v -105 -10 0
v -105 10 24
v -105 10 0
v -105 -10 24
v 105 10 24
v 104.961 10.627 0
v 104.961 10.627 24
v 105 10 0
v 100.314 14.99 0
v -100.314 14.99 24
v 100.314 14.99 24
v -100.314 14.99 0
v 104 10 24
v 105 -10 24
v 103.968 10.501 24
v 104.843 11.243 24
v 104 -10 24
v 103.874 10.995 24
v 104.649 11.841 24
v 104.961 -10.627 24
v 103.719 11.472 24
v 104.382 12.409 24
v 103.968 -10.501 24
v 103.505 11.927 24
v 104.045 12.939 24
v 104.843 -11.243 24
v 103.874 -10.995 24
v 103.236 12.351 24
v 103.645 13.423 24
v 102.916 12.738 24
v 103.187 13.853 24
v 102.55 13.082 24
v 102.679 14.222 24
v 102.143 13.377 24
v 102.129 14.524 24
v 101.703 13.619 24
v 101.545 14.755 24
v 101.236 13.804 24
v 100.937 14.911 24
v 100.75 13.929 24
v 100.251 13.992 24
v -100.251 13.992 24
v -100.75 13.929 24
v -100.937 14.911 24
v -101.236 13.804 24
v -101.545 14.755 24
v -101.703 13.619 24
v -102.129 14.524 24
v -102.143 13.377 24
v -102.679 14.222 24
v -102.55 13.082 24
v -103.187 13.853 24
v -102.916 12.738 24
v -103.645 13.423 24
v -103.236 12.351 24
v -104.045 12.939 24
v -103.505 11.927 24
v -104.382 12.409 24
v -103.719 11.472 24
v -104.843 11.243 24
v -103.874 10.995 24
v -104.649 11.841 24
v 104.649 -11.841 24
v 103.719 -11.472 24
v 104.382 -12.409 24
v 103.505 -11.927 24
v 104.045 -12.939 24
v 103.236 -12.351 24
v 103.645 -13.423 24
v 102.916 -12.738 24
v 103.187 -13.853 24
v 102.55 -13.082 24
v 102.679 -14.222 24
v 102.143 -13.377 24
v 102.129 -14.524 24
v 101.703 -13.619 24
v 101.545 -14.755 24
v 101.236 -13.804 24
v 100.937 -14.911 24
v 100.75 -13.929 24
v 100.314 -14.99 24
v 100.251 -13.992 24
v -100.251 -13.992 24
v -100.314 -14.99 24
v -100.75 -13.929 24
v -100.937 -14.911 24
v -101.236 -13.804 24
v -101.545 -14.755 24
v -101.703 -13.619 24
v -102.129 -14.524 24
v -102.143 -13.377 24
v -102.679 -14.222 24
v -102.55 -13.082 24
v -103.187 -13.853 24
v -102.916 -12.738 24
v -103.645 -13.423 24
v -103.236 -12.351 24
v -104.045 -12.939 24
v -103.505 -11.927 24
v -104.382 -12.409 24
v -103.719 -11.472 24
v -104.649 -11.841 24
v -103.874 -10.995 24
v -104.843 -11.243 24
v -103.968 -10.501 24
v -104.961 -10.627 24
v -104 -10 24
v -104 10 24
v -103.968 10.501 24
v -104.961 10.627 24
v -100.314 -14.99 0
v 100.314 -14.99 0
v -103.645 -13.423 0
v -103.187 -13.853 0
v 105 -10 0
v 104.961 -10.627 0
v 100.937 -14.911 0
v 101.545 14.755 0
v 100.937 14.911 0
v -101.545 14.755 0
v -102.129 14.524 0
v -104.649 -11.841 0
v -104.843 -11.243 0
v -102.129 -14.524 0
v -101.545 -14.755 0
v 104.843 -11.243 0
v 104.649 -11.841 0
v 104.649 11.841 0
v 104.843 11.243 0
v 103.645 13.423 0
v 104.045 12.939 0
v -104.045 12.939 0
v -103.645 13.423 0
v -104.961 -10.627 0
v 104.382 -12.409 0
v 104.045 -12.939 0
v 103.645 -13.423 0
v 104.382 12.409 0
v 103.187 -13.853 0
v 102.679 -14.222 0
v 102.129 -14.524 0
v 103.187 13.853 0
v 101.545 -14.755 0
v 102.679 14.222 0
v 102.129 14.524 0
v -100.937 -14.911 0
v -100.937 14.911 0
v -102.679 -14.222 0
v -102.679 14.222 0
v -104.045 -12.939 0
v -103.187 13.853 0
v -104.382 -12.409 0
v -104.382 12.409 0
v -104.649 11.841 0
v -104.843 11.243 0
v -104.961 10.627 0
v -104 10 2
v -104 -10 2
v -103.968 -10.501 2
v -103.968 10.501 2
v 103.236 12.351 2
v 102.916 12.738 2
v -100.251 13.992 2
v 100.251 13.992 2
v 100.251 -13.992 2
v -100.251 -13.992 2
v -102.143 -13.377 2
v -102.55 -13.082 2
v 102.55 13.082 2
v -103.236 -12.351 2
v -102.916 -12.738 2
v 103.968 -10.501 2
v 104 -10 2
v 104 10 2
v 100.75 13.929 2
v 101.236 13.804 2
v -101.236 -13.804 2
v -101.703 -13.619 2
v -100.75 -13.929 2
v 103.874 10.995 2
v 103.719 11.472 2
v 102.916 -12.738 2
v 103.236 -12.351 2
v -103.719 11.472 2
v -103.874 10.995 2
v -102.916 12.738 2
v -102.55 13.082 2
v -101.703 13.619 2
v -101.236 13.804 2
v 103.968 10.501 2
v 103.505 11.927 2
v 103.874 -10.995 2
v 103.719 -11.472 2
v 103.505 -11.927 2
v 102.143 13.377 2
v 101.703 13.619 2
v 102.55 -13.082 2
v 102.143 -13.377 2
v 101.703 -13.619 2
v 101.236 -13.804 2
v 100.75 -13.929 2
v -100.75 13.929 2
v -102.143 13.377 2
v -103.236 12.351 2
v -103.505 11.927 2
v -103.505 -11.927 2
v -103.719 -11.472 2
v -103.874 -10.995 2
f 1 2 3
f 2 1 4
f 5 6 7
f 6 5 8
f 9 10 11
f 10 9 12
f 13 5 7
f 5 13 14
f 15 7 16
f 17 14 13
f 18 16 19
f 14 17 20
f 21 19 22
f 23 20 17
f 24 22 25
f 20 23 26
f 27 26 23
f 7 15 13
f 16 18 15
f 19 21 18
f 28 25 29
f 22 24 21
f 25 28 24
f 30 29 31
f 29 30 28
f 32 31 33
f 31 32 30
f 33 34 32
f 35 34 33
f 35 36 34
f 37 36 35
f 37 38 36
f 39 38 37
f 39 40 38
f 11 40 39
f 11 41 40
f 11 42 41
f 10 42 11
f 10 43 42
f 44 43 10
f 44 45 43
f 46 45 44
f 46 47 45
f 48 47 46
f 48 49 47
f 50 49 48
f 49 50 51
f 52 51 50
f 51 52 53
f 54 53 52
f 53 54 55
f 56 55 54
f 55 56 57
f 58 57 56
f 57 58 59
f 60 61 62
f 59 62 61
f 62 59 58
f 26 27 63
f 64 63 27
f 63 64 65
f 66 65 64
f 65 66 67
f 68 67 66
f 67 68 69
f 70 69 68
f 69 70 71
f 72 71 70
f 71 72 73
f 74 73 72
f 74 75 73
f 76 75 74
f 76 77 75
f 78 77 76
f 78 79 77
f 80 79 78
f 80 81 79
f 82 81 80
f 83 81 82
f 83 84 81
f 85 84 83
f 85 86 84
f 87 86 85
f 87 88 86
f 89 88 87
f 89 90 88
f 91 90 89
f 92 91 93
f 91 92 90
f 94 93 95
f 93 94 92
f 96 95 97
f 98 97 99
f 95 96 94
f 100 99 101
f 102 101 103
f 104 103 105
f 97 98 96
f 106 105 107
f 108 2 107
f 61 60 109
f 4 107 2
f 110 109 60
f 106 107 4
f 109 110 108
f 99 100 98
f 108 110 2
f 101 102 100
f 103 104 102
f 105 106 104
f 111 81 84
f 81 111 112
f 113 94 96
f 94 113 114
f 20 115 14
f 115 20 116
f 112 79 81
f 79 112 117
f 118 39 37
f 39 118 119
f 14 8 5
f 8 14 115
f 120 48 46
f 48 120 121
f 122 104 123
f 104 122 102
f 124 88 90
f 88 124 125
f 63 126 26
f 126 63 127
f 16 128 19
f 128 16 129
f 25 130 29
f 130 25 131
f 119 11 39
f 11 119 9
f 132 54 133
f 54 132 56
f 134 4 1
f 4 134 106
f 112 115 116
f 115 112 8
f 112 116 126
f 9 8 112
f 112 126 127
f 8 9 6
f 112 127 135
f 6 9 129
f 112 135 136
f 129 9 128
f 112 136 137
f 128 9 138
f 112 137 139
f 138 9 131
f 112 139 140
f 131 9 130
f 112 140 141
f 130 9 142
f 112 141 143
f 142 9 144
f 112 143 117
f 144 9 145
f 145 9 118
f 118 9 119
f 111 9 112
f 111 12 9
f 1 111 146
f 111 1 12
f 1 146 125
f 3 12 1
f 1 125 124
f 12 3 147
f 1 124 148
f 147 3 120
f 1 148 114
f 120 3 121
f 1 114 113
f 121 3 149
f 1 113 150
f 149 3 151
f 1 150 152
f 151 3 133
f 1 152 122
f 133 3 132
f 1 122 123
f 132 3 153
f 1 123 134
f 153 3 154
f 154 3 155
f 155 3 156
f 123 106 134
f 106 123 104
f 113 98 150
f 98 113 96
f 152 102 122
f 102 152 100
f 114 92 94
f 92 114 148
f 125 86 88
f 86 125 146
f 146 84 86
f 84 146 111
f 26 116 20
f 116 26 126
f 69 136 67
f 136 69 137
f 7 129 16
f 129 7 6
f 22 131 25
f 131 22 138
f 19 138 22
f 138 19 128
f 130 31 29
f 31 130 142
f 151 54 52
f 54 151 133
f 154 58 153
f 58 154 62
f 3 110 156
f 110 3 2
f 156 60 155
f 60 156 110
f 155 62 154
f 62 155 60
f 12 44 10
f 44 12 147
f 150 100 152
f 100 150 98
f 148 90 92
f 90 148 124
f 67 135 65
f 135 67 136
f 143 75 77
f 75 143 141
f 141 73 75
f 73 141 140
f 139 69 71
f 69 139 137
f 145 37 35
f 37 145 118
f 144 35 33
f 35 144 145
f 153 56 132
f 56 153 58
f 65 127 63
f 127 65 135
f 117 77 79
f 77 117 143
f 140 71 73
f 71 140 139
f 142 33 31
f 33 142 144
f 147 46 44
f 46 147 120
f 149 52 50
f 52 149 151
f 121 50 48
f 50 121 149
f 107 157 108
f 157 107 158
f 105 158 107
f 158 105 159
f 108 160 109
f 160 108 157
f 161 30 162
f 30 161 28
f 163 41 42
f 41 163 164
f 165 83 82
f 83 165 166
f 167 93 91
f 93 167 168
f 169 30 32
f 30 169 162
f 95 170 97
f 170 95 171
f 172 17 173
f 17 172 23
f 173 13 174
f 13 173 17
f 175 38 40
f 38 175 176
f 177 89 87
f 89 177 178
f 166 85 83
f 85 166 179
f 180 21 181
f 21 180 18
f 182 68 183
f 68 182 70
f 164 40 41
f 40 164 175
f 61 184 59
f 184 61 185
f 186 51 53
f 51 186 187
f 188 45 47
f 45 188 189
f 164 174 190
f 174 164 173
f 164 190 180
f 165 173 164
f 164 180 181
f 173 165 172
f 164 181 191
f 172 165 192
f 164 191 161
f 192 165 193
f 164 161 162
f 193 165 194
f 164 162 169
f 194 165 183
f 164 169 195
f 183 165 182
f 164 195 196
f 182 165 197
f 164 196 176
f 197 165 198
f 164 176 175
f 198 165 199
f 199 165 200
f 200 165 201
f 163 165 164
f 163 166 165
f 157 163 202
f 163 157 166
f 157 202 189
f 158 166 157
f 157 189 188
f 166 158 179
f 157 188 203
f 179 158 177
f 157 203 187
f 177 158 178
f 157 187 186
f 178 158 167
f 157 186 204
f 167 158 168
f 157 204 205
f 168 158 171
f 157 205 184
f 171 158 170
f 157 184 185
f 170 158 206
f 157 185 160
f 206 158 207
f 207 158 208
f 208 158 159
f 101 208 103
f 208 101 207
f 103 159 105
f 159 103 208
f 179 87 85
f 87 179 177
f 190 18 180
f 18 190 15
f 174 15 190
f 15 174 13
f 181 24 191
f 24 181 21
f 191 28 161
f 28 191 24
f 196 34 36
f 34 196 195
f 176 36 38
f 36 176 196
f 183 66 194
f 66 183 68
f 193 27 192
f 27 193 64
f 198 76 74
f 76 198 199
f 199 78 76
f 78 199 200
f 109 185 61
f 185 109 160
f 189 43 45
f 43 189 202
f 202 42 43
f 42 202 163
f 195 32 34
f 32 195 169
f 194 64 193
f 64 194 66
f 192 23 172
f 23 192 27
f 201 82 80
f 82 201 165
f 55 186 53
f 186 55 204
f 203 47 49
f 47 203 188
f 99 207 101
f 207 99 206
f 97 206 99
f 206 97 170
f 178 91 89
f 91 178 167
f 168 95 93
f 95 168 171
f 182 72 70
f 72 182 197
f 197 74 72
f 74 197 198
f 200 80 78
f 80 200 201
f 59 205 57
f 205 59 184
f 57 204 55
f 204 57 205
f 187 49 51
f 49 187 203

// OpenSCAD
$fn = 50;


difference() {
	union() {
		hull() {
			translate(v = [-100.0000000000, 10.0000000000, 0]) {
				cylinder(h = 24, r = 5);
			}
			translate(v = [100.0000000000, 10.0000000000, 0]) {
				cylinder(h = 24, r = 5);
			}
			translate(v = [-100.0000000000, -10.0000000000, 0]) {
				cylinder(h = 24, r = 5);
			}
			translate(v = [100.0000000000, -10.0000000000, 0]) {
				cylinder(h = 24, r = 5);
			}
		}
	}
	union() {
		translate(v = [0, 0, 2]) {
			hull() {
				translate(v = [-100.0000000000, 10.0000000000, 0]) {
					cylinder(h = 22, r = 4);
				}
				translate(v = [100.0000000000, 10.0000000000, 0]) {
					cylinder(h = 22, r = 4);
				}
				translate(v = [-100.0000000000, -10.0000000000, 0]) {
					cylinder(h = 22, r = 4);
				}
				translate(v = [100.0000000000, -10.0000000000, 0]) {
					cylinder(h = 22, r = 4);
				}
			}
		}
	}
}
